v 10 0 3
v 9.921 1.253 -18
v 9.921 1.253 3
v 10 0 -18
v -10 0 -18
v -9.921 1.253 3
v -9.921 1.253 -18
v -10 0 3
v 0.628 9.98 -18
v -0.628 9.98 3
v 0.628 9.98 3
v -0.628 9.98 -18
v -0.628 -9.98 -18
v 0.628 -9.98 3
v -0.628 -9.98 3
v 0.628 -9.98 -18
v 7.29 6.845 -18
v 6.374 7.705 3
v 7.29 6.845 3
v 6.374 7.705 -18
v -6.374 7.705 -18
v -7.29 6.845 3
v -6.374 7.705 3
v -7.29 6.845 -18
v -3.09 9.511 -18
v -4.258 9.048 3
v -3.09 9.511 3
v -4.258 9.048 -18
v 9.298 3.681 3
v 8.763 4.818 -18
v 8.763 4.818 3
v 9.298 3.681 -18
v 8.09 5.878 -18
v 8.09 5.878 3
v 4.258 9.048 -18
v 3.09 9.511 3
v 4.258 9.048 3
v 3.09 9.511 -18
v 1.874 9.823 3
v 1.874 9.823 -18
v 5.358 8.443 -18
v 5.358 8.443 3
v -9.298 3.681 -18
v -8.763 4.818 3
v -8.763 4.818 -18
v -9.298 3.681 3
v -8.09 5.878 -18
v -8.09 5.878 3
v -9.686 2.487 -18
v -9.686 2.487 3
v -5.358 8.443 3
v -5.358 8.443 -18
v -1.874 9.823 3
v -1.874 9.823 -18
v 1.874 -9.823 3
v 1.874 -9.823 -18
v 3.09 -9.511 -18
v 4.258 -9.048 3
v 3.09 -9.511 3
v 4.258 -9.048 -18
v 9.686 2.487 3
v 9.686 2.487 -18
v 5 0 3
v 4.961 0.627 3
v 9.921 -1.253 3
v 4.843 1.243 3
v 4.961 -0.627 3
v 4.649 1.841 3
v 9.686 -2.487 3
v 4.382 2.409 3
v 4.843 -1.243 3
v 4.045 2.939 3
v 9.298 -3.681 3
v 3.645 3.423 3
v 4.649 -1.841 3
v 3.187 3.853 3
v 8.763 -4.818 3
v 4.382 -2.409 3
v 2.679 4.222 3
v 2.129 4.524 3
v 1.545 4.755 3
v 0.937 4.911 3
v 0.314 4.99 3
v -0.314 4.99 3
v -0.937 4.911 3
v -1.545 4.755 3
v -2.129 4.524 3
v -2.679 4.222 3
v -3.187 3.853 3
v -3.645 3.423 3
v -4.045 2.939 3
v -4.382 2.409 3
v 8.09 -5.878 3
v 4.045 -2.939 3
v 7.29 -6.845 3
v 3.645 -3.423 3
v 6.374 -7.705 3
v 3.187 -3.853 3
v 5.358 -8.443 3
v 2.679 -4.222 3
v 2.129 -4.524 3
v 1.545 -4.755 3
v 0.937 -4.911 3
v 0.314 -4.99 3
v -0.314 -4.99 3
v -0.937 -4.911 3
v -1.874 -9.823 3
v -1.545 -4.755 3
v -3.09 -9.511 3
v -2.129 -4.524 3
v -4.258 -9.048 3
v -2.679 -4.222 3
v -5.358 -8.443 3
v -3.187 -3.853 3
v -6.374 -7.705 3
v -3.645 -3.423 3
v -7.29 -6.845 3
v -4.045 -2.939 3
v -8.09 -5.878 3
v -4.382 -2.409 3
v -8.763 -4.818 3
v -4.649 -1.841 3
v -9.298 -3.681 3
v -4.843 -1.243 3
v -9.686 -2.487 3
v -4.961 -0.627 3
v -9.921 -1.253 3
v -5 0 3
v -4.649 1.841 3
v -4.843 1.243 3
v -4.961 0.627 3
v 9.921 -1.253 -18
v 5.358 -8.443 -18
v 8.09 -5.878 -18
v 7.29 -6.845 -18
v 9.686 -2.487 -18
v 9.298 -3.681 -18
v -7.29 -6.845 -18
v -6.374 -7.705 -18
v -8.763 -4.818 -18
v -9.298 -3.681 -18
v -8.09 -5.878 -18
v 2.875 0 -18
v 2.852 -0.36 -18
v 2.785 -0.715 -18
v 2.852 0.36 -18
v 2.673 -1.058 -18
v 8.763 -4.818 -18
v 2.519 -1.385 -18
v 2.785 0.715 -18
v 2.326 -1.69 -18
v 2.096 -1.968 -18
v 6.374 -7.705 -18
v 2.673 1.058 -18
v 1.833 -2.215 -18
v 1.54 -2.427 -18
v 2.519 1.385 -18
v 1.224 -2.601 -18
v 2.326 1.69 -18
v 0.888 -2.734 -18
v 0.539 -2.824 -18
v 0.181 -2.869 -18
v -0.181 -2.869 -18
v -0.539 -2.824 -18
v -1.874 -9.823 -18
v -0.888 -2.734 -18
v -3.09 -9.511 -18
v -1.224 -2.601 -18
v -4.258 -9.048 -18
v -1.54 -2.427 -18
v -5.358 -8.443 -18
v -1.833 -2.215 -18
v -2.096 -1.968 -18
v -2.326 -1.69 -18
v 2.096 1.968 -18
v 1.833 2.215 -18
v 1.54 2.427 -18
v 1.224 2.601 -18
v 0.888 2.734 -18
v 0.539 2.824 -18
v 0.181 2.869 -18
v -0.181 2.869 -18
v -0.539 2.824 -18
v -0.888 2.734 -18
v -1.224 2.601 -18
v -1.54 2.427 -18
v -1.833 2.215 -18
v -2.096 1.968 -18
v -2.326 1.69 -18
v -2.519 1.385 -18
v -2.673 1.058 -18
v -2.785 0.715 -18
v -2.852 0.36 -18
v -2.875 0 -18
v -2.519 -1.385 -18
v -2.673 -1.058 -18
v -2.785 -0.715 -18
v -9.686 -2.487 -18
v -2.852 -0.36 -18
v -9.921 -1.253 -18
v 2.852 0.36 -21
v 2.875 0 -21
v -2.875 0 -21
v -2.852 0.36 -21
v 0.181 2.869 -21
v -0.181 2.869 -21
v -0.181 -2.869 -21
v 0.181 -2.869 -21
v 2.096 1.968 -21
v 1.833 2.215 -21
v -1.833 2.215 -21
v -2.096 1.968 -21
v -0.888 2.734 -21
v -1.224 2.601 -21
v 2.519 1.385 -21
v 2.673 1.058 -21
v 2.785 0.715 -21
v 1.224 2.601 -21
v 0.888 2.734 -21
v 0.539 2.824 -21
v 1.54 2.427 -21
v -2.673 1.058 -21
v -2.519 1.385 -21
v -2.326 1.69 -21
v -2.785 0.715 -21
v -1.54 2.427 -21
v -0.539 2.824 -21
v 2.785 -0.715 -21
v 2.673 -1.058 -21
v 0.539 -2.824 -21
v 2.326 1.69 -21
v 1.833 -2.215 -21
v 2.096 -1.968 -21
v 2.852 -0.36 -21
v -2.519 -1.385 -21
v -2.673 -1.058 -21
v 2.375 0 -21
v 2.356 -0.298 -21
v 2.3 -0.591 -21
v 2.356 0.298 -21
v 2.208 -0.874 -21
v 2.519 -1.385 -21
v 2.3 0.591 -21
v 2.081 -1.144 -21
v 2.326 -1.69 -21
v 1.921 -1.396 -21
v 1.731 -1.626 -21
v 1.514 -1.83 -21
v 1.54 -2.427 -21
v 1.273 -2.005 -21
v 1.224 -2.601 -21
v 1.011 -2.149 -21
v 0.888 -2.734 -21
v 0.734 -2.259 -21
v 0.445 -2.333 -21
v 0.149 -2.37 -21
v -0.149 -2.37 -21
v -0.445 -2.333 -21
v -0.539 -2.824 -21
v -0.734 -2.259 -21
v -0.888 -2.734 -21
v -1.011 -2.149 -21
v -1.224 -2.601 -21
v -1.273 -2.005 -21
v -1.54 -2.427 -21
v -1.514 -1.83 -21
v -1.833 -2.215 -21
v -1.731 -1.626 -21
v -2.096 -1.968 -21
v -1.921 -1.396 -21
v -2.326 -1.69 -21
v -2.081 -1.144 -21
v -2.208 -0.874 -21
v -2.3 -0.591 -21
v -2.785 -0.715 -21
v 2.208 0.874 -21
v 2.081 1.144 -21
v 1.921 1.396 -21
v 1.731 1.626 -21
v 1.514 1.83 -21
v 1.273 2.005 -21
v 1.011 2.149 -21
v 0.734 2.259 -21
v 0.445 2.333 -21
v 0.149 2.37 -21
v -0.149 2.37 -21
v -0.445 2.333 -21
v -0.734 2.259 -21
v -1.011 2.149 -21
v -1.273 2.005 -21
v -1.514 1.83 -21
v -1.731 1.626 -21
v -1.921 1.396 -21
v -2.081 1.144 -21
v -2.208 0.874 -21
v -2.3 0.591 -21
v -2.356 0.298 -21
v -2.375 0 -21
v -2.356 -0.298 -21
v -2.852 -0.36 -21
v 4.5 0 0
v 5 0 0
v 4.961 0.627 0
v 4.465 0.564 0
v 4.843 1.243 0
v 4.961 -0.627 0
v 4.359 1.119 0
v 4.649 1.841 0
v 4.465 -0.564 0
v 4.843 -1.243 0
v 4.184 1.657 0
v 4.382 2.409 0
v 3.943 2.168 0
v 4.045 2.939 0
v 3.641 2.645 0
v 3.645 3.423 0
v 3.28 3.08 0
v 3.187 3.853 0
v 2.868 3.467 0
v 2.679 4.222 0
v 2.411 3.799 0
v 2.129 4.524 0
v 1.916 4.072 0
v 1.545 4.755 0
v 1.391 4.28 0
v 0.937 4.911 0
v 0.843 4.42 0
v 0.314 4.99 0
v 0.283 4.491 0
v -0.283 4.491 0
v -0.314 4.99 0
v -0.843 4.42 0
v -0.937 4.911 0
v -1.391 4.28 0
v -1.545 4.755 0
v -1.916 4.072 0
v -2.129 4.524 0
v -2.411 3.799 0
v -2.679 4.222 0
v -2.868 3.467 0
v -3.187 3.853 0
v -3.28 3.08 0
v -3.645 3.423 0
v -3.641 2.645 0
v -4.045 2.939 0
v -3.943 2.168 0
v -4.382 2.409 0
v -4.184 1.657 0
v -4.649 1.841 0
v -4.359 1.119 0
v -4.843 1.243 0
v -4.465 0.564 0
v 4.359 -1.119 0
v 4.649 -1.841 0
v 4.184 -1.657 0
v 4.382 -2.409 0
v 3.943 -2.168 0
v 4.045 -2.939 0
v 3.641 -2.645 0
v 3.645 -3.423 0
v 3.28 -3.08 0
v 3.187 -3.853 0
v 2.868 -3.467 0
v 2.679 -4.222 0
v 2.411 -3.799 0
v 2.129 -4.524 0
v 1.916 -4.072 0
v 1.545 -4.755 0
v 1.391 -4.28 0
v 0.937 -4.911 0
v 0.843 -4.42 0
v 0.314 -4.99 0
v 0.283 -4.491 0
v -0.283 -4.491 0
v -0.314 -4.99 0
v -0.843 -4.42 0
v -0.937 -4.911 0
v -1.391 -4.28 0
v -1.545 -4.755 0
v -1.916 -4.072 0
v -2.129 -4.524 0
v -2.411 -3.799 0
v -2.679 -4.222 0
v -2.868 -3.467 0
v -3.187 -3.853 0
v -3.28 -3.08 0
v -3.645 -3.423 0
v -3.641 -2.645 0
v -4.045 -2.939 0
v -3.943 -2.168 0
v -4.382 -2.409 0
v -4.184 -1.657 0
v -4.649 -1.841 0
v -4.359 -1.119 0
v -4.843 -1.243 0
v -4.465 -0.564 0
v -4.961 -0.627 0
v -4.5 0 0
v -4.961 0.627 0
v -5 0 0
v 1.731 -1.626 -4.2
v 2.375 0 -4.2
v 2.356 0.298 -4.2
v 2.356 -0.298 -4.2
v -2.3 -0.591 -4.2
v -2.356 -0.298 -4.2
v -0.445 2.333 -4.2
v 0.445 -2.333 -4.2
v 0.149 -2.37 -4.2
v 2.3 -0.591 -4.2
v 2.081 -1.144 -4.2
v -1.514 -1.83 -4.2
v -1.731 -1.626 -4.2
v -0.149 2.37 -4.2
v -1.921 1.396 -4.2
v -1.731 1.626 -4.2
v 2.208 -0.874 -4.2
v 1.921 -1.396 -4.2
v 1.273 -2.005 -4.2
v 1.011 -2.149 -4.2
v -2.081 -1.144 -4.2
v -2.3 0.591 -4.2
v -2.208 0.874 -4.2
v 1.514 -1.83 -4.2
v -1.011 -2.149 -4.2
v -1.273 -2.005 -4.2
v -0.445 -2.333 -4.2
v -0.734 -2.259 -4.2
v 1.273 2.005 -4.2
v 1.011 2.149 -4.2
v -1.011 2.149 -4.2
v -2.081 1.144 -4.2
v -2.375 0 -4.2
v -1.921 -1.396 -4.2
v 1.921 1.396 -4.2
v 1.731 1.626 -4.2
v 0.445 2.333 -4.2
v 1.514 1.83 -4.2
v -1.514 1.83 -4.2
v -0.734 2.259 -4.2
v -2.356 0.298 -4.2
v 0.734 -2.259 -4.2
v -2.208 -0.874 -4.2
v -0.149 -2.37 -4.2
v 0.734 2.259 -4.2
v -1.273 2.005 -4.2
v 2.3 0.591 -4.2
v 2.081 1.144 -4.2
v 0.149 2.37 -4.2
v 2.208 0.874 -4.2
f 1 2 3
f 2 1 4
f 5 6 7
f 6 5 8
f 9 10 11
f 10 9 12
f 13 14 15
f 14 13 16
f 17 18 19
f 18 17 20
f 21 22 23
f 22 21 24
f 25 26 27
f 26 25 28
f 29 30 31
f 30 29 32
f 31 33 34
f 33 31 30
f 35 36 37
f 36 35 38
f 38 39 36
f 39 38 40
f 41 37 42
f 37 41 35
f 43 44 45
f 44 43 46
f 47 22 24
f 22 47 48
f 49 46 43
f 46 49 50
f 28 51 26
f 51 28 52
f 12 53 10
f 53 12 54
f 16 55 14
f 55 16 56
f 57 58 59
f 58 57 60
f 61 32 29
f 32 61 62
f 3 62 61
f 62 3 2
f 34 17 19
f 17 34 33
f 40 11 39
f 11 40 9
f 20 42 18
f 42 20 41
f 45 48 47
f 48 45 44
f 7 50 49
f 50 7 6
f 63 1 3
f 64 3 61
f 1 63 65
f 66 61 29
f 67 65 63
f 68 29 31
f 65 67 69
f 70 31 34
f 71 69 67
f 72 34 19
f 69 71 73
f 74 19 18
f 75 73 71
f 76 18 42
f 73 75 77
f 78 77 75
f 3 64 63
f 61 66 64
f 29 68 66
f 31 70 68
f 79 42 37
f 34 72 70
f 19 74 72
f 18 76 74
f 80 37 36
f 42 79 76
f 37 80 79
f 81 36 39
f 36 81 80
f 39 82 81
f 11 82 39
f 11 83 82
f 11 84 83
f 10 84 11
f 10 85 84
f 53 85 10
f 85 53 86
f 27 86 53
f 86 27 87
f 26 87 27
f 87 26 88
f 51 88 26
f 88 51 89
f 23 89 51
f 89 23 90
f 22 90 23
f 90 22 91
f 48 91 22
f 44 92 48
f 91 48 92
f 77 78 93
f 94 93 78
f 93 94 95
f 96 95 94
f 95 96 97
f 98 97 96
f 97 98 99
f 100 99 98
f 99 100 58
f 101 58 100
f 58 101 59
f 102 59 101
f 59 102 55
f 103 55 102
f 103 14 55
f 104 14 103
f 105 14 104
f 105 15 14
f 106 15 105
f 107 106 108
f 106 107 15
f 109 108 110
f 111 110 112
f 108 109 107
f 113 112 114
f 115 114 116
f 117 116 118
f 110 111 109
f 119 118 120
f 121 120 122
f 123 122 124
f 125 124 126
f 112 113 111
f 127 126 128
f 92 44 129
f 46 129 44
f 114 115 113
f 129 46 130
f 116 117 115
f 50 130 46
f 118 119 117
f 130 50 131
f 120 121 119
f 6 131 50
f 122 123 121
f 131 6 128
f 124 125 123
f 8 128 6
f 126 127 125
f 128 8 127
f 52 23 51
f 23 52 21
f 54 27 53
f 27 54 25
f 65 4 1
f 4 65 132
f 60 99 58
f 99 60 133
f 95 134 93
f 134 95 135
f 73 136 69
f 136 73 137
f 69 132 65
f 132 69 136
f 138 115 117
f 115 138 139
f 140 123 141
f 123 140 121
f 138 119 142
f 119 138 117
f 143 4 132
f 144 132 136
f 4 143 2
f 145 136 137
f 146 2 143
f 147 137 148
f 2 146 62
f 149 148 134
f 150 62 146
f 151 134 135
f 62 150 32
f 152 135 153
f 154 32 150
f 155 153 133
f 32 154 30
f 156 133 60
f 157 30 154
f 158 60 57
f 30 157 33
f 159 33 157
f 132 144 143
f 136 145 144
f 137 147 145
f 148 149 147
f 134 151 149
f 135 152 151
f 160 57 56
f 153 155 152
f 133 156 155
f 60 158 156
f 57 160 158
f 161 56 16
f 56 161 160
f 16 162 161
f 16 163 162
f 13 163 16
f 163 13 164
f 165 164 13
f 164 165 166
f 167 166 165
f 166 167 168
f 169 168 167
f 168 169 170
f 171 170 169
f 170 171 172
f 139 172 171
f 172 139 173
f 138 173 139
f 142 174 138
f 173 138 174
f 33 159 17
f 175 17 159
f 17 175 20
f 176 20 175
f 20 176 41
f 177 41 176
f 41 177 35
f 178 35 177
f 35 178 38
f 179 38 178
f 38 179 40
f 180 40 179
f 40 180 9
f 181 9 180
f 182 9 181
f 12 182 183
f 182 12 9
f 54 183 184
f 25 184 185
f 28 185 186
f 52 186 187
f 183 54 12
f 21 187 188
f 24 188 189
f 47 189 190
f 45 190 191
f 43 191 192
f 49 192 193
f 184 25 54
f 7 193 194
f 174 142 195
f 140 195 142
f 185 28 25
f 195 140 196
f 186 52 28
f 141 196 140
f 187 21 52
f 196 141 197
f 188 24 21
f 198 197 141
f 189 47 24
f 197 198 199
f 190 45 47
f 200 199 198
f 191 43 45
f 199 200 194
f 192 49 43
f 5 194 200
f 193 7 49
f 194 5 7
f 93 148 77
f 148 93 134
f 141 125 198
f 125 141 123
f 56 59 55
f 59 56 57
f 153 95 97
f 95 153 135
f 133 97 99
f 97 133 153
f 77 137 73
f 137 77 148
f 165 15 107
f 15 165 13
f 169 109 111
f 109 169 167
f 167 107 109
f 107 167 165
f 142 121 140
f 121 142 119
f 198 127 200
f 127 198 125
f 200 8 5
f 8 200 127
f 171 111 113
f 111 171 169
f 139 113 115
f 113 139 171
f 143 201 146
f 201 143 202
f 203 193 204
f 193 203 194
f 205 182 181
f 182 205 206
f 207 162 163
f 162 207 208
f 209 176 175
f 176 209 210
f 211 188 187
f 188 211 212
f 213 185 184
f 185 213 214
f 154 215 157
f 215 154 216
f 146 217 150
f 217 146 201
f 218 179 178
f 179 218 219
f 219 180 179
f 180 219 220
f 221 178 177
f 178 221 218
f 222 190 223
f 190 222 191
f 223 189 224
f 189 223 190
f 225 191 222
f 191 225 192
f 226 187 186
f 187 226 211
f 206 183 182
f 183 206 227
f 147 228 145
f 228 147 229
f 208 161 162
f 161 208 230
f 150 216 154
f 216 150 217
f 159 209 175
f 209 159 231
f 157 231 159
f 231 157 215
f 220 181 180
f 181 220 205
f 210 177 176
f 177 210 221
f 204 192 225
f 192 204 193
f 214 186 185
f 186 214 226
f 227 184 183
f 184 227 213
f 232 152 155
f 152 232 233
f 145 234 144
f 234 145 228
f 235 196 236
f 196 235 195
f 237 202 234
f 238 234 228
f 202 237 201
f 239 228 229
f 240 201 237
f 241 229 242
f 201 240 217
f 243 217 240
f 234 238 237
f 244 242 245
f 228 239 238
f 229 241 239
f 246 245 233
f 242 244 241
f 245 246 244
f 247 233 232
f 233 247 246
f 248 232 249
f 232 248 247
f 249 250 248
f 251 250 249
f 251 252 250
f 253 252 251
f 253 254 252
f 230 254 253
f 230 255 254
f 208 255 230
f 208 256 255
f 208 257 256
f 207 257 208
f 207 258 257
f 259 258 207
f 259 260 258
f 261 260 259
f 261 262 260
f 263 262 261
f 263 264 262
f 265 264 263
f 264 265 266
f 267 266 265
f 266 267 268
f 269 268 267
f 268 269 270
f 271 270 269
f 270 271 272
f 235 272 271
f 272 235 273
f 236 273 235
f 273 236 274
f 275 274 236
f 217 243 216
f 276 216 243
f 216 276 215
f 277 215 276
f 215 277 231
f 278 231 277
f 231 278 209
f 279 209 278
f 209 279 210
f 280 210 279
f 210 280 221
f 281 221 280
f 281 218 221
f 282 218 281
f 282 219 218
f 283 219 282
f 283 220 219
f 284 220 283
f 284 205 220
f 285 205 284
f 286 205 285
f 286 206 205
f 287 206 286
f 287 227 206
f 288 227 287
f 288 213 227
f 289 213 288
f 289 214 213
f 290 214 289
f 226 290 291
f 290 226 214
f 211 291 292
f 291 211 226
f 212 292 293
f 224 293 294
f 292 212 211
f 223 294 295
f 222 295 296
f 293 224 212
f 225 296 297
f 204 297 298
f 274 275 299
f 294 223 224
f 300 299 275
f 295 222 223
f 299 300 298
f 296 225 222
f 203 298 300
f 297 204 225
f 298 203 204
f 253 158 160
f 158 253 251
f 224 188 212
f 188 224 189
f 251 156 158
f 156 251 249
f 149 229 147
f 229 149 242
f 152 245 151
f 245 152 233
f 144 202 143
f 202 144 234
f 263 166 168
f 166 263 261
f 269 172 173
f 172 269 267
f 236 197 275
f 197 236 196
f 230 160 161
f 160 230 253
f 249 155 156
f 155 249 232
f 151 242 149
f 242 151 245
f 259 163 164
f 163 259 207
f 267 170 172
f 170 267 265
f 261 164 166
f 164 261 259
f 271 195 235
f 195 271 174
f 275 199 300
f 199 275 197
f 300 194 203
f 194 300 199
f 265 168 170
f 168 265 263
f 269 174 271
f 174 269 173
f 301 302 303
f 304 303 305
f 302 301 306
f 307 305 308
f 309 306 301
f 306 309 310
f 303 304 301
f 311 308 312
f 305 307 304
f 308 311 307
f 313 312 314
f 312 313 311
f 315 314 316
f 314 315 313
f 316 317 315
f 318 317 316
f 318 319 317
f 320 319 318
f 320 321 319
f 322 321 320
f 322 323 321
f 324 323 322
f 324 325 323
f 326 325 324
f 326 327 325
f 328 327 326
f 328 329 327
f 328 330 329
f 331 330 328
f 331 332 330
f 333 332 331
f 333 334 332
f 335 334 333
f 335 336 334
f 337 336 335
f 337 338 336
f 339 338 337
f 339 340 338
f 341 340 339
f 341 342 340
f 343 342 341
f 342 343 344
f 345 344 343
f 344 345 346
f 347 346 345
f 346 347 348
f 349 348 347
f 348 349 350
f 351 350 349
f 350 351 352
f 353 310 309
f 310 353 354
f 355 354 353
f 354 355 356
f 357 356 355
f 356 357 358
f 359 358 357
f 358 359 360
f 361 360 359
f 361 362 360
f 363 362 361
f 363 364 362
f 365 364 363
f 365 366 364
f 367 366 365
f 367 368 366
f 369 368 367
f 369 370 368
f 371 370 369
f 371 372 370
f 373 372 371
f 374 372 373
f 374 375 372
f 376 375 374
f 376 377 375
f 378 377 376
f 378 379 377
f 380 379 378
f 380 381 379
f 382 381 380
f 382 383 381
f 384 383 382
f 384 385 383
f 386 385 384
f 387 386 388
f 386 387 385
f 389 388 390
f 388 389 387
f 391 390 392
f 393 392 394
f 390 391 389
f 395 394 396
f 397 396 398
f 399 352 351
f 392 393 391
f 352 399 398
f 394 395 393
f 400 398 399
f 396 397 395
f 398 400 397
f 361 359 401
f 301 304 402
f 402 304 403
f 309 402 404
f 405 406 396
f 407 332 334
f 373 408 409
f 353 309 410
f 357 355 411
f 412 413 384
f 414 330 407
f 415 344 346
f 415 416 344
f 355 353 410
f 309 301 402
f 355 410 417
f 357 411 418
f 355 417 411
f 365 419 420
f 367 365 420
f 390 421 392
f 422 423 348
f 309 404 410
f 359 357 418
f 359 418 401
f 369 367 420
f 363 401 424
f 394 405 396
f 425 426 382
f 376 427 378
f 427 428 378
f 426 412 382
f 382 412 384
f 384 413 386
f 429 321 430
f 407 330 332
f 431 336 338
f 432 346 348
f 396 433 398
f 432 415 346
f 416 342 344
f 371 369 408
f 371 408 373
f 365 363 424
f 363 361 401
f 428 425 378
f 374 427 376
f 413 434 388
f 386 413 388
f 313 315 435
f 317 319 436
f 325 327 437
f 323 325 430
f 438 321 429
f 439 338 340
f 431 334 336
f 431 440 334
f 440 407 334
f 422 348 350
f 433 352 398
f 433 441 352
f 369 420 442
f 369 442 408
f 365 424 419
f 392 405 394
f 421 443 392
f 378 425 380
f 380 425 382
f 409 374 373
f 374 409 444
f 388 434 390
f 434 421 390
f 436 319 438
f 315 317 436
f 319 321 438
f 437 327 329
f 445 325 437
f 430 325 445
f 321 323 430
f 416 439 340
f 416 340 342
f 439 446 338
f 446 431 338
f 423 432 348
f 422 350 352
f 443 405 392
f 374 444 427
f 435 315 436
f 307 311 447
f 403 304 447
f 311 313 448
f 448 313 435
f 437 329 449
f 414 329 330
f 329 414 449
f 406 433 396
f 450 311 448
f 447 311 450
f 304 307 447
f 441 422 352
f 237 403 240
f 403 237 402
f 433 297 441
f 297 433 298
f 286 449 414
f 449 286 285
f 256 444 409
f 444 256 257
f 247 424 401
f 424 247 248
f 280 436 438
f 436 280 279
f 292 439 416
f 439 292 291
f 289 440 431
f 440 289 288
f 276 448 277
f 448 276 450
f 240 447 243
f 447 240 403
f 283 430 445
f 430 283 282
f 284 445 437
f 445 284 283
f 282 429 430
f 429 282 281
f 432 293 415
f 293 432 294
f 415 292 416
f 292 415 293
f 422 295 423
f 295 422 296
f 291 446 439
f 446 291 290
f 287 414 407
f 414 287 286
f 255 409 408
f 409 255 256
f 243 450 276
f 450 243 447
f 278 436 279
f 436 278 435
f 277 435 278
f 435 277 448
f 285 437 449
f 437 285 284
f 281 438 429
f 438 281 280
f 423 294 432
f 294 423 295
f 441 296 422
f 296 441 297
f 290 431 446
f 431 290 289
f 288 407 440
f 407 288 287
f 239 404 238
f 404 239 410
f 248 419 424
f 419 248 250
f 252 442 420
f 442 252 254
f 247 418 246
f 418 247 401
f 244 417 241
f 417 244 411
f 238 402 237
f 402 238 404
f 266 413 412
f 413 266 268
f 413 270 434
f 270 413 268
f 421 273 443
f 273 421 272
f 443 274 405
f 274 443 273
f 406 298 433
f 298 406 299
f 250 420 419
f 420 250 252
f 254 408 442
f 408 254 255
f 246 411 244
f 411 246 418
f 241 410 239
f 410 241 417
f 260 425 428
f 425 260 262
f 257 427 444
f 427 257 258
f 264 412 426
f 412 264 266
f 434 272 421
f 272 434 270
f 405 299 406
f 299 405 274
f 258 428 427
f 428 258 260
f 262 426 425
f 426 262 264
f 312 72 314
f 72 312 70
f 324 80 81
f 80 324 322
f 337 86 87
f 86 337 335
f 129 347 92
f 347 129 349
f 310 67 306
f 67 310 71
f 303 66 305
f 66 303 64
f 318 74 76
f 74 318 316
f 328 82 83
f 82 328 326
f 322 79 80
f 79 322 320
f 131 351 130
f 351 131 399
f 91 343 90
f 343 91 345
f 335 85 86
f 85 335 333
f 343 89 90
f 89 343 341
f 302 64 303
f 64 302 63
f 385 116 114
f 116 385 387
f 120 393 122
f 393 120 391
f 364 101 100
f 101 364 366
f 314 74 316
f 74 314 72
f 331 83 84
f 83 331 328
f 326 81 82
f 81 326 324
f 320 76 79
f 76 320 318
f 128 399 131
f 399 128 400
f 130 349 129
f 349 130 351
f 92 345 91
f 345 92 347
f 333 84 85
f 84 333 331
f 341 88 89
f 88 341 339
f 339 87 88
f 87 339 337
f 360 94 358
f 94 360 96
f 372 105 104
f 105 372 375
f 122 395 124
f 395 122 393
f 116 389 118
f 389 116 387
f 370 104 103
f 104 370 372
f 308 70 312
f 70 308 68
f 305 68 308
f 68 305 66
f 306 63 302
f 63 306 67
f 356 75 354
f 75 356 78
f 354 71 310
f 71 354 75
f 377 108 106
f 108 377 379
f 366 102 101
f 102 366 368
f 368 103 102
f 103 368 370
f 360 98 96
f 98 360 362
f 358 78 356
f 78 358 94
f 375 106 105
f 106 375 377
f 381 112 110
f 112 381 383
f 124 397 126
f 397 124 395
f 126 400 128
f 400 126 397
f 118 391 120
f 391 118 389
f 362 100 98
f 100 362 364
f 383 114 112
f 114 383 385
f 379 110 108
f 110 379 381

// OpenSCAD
$fn = 50;

difference() {
	union() {
		translate(v = [0, 0, -18.0]) {
			cylinder(h = 21, r = 10.0);
		}
		#translate(v = [0, 0, -21.0]) {
			cylinder(h = 21, r = 2.875);
		}
	}
	union() {
		translate(v = [0, 0, 0]) {
			rotate(a = [0, 0, 0]) {
				difference() {
					union() {
						translate(v = [0, 0, -21.0]) {
							cylinder(h = 21, r = 2.25);
						}
						translate(v = [0, 0, -4.2]) {
							cylinder(h = 4.2, r1 = 2.375, r2 = 4.5);
						}
						translate(v = [0, 0, -21.0]) {
							cylinder(h = 21, r = 2.375);
						}
						translate(v = [0, 0, -21.0]) {
							cylinder(h = 21, r = 2.25);
						}
					}
					union();
				}
			}
		}
		#cylinder(h = 3, r = 5.0);
	}
}
